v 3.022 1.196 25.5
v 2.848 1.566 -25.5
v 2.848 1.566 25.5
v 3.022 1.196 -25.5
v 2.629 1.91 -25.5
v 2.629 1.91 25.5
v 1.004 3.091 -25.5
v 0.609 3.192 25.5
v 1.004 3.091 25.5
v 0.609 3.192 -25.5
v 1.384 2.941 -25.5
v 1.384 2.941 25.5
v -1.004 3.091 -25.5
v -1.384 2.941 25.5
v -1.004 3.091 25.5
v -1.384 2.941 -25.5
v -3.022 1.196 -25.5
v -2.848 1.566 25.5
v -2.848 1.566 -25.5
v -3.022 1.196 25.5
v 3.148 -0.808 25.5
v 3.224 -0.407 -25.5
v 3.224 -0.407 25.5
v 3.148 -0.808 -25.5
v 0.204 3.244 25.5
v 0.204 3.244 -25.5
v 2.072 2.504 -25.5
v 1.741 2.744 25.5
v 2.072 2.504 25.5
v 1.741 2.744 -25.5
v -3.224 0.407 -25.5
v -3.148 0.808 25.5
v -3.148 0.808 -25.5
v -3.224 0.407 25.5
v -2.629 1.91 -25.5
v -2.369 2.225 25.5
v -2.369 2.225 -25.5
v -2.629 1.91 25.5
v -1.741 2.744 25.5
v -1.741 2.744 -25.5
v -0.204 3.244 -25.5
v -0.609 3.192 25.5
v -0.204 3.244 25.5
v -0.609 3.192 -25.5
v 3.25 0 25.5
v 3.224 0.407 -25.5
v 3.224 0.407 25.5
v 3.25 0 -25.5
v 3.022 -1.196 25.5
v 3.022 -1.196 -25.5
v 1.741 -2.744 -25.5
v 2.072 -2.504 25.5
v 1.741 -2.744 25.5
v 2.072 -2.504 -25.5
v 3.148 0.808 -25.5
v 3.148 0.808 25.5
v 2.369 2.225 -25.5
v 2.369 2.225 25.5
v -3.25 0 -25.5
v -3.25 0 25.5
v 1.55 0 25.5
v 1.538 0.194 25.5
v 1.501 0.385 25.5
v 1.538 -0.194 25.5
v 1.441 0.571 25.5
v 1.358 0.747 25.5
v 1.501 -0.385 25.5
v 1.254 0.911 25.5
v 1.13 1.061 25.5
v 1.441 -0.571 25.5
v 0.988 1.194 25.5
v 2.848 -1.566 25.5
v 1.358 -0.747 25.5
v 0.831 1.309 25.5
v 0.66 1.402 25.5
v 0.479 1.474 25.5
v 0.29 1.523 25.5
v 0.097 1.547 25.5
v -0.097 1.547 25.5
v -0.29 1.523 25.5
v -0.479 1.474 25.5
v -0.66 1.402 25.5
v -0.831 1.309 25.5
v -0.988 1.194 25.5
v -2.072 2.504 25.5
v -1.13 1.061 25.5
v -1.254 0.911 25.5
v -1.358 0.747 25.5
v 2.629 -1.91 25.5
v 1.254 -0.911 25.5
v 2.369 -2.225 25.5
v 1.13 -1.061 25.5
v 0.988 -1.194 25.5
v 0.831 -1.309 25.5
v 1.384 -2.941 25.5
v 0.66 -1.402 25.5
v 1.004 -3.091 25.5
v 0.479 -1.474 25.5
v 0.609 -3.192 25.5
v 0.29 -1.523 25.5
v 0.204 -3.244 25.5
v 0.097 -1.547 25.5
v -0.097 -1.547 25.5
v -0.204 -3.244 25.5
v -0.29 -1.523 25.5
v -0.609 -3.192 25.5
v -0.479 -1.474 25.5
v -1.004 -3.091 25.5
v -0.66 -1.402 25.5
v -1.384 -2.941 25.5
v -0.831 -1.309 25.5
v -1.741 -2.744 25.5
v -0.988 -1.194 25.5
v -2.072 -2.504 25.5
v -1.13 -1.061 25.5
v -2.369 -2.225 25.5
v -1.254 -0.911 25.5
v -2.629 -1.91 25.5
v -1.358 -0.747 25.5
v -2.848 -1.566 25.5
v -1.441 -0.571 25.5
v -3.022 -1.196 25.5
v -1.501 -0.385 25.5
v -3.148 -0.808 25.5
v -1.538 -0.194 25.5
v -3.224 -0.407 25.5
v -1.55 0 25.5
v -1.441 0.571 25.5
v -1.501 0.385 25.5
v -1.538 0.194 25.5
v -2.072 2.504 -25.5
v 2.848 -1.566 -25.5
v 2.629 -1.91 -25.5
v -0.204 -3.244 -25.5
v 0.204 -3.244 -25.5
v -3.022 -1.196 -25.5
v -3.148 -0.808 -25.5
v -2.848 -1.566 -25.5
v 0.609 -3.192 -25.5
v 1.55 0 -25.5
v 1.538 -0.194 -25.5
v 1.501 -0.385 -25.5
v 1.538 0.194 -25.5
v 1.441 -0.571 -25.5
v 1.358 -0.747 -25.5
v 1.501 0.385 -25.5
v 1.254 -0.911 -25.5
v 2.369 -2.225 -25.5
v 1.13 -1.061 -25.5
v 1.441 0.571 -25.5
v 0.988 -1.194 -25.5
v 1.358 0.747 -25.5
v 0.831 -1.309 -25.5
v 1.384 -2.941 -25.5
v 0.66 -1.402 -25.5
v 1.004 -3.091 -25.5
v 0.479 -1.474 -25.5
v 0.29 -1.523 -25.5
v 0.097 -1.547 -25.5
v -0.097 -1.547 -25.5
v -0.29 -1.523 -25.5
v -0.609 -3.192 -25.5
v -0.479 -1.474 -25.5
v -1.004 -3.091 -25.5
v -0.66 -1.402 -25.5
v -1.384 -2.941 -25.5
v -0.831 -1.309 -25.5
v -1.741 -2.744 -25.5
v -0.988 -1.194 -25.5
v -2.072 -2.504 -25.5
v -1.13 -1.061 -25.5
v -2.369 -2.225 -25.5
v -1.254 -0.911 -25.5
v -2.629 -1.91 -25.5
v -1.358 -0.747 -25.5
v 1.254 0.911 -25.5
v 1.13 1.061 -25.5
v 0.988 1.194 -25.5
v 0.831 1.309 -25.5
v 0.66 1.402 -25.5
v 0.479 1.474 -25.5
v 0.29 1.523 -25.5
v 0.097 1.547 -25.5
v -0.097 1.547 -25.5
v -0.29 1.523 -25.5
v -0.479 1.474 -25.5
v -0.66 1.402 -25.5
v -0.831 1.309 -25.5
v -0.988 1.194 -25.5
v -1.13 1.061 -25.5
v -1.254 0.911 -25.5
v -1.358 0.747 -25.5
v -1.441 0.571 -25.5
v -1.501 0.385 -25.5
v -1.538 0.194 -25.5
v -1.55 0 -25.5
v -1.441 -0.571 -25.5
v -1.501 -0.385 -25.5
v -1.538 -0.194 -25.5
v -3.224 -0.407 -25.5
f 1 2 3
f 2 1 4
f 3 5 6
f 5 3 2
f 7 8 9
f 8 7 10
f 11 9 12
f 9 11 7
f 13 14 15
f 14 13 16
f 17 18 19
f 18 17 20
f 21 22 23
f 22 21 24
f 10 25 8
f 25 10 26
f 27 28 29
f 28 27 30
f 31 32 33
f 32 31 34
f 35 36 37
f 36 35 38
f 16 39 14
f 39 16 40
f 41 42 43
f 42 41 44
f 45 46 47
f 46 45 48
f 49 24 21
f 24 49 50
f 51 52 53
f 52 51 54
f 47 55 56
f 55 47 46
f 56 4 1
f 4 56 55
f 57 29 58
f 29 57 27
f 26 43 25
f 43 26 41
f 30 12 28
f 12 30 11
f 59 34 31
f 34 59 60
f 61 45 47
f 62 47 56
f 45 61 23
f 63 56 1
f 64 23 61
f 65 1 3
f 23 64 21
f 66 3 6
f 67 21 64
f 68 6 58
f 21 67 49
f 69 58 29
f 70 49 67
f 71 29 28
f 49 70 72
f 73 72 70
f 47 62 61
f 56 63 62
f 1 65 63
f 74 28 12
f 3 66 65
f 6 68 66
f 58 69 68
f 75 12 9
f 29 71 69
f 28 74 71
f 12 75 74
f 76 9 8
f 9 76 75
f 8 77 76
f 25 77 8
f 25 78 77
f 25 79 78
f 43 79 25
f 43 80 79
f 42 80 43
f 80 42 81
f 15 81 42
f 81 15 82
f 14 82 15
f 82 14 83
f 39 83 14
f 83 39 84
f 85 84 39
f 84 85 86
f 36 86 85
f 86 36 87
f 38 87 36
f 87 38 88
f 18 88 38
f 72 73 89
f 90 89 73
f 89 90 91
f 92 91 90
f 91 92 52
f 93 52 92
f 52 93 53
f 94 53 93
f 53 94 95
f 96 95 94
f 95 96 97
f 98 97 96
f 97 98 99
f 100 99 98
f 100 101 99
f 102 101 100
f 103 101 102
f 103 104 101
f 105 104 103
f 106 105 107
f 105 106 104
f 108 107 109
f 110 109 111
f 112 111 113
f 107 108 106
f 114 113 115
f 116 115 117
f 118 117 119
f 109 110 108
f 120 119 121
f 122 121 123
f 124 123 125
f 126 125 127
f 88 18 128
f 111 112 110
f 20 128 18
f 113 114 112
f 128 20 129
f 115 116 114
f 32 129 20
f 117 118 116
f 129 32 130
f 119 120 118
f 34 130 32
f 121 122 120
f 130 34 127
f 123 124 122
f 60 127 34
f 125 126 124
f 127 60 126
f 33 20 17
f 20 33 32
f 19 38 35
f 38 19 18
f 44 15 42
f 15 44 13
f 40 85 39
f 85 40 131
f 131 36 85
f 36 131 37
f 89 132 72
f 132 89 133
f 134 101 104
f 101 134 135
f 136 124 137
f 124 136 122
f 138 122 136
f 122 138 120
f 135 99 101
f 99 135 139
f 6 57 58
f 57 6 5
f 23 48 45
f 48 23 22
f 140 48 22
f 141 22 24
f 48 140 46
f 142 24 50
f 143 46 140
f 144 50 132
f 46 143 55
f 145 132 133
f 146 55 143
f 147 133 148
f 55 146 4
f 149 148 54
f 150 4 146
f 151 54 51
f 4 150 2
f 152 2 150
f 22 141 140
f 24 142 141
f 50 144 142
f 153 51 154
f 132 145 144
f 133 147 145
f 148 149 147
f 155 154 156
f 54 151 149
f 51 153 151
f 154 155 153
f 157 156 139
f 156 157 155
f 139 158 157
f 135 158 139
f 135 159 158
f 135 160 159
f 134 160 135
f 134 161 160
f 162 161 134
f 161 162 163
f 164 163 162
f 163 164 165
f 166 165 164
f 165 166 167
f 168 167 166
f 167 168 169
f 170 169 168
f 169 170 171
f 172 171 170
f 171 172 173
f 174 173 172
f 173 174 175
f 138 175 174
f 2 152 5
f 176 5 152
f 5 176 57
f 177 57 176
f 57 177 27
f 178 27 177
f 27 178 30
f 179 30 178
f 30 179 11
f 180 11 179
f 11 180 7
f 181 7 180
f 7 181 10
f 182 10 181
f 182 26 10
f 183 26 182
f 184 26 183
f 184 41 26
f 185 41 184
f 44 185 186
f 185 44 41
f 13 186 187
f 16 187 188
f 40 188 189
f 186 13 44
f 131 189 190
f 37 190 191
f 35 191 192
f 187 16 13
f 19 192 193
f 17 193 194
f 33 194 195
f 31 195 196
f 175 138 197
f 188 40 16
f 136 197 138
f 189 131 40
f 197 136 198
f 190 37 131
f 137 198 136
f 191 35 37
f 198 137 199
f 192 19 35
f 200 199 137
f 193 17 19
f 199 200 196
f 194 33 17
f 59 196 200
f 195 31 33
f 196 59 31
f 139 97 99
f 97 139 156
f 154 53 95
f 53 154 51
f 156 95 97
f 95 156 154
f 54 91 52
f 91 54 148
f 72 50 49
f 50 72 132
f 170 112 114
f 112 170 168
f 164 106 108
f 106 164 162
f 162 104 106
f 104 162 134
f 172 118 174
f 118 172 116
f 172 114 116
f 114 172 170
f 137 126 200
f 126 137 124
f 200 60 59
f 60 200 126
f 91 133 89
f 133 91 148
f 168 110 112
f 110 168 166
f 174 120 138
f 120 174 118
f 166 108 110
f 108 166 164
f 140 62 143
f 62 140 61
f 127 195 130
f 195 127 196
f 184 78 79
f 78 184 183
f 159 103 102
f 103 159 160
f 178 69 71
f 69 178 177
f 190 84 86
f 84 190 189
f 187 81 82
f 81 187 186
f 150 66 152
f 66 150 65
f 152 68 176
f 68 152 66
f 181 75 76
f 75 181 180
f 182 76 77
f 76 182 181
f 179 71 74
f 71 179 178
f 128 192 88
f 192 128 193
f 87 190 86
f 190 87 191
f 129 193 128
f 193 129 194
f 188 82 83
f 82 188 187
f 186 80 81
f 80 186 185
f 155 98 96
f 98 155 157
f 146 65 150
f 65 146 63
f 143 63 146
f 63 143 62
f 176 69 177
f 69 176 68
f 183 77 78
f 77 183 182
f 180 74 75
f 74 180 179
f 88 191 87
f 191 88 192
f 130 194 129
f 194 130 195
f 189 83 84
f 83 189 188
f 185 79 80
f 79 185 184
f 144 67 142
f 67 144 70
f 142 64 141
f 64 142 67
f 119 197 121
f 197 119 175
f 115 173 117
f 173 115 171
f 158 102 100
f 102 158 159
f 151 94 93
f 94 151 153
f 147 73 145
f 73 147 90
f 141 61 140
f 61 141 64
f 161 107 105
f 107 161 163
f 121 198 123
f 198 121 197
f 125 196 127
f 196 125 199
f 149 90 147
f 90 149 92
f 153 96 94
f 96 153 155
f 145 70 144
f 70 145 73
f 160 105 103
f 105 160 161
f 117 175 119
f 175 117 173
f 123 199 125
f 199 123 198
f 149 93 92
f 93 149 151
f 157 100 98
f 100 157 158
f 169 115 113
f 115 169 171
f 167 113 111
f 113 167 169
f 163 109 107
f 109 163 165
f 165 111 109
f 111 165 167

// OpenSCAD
$fn = 50;


difference() {
	union() {
		translate(v = [0, 0, -25.5000000000]) {
			cylinder(h = 51, r = 3.2500000000);
		}
	}
	union() {
		translate(v = [0, 0, -100.0000000000]) {
			cylinder(h = 200, r = 1.5500000000);
		}
	}
}
